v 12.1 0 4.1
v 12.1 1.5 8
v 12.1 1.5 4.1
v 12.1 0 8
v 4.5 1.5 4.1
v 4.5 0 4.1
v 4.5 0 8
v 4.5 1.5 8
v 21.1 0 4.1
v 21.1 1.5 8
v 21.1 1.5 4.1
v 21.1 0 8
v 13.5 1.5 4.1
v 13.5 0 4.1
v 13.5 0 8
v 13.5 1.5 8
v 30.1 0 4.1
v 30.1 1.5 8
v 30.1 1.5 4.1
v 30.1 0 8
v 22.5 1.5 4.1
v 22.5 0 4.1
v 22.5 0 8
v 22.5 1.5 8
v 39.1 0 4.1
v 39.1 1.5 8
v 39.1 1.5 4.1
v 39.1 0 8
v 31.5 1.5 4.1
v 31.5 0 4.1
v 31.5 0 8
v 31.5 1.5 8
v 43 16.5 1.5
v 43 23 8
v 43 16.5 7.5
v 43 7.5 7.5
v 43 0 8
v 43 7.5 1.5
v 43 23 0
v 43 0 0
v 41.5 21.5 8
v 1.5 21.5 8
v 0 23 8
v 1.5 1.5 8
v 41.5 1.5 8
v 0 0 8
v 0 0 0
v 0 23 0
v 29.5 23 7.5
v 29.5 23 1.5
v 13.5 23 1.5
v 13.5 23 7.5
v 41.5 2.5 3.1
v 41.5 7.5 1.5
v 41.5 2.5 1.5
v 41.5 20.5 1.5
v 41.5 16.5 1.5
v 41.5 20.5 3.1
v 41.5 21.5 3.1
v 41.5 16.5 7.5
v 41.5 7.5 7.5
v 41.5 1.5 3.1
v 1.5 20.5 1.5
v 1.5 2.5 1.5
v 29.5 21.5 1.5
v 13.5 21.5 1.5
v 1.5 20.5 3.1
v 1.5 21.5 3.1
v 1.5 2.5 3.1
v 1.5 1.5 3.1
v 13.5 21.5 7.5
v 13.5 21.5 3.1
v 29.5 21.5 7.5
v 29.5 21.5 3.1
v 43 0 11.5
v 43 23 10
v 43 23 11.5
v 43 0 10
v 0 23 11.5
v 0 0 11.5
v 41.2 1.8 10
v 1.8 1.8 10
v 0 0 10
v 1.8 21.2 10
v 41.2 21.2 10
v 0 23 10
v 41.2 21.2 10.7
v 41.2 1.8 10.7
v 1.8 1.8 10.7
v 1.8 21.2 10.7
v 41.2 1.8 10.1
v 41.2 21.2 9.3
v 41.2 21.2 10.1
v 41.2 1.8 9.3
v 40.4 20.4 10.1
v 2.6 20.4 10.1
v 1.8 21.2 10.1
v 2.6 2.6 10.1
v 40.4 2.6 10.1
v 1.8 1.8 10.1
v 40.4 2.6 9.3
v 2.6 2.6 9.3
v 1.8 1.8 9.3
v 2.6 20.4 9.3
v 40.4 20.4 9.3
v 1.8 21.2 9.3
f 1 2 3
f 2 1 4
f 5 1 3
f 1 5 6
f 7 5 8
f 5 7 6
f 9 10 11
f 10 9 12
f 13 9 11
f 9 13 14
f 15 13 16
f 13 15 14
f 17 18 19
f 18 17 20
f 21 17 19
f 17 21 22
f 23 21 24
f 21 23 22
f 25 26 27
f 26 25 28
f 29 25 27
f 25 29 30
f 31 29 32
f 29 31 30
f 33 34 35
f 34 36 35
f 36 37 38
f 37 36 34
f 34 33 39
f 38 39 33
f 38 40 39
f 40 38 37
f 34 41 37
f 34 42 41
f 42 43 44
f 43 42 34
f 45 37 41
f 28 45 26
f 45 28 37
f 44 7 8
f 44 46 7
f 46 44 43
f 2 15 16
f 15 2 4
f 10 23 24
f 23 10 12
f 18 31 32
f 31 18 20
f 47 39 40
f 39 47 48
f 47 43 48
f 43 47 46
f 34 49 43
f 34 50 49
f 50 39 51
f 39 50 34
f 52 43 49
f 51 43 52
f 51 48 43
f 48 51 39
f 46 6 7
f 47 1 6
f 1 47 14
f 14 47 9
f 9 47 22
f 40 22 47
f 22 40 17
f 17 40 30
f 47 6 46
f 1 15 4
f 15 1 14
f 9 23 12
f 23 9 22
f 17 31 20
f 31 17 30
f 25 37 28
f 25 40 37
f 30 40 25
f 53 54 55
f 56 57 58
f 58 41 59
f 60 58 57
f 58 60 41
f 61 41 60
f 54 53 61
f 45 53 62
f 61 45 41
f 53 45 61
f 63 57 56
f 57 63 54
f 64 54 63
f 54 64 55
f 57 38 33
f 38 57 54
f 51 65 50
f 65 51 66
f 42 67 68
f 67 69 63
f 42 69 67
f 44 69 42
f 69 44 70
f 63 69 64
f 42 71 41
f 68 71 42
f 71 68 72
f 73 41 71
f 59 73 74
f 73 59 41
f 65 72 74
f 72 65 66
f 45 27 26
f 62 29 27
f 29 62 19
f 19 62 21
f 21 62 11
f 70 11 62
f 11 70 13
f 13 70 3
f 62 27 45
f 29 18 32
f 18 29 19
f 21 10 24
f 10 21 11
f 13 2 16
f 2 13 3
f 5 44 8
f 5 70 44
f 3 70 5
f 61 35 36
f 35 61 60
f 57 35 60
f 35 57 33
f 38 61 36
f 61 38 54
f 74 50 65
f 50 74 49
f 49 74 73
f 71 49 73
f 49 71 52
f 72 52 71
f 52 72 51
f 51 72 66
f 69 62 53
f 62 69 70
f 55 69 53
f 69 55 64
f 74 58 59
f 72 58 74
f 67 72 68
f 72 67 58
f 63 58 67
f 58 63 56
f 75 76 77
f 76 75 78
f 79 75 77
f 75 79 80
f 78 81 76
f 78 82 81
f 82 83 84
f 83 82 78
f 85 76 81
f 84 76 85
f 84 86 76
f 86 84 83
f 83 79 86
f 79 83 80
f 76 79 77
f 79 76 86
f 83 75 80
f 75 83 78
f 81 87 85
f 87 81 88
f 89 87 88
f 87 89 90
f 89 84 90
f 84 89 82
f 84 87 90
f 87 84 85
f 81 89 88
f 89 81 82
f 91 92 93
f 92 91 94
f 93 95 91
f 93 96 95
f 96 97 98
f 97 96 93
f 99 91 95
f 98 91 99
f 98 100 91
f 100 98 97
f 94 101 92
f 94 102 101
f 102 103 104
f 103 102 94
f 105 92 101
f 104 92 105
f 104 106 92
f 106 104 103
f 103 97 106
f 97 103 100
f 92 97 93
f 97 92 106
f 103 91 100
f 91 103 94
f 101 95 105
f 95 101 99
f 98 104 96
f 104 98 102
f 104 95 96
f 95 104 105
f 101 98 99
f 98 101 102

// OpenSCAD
// RWC Servo Module Case (2U: 40×20mm)
$fn = 30;

pcb_w = 40;
pcb_d = 20;
pcb_h = 1.6;
wall = 1.5;
case_h = 8;
lid_h = 1.5;
tol = 0.3;

module base() {
    difference() {
        cube([pcb_w + wall*2, pcb_d + wall*2, case_h]);
        // Inner cavity
        translate([wall, wall, wall])
            cube([pcb_w, pcb_d, case_h]);
        // 4x servo cable slots (top edge, evenly spaced)
        for (i = [0:3])
            translate([wall + 3 + i*9, -0.1, wall + pcb_h + 1])
                cube([7.6, wall + 0.2, 5]);
        // DC jack (right side)
        translate([pcb_w + wall - 0.1, wall + 6, wall])
            cube([wall + 0.2, 9, 6]);
        // Pogo pin slot (back)
        translate([wall + 12, pcb_d + wall - 0.1, wall])
            cube([16, wall + 0.2, 6]);
    }
    // PCB ledges
    for (y = [wall, wall + pcb_d - 1])
        translate([wall, y, wall])
            cube([pcb_w, 1, pcb_h]);
}

module lid() {
    translate([0, 0, case_h + 2]) {
        difference() {
            cube([pcb_w + wall*2, pcb_d + wall*2, lid_h]);
            translate([wall + tol, wall + tol, -0.1])
                cube([pcb_w - tol*2, pcb_d - tol*2, 0.8]);
        }
        translate([wall + tol, wall + tol, -0.7])
            difference() {
                cube([pcb_w - tol*2, pcb_d - tol*2, 0.8]);
                translate([0.8, 0.8, -0.1])
                    cube([pcb_w - tol*2 - 1.6, pcb_d - tol*2 - 1.6, 1]);
            }
    }
}

base();
lid();
